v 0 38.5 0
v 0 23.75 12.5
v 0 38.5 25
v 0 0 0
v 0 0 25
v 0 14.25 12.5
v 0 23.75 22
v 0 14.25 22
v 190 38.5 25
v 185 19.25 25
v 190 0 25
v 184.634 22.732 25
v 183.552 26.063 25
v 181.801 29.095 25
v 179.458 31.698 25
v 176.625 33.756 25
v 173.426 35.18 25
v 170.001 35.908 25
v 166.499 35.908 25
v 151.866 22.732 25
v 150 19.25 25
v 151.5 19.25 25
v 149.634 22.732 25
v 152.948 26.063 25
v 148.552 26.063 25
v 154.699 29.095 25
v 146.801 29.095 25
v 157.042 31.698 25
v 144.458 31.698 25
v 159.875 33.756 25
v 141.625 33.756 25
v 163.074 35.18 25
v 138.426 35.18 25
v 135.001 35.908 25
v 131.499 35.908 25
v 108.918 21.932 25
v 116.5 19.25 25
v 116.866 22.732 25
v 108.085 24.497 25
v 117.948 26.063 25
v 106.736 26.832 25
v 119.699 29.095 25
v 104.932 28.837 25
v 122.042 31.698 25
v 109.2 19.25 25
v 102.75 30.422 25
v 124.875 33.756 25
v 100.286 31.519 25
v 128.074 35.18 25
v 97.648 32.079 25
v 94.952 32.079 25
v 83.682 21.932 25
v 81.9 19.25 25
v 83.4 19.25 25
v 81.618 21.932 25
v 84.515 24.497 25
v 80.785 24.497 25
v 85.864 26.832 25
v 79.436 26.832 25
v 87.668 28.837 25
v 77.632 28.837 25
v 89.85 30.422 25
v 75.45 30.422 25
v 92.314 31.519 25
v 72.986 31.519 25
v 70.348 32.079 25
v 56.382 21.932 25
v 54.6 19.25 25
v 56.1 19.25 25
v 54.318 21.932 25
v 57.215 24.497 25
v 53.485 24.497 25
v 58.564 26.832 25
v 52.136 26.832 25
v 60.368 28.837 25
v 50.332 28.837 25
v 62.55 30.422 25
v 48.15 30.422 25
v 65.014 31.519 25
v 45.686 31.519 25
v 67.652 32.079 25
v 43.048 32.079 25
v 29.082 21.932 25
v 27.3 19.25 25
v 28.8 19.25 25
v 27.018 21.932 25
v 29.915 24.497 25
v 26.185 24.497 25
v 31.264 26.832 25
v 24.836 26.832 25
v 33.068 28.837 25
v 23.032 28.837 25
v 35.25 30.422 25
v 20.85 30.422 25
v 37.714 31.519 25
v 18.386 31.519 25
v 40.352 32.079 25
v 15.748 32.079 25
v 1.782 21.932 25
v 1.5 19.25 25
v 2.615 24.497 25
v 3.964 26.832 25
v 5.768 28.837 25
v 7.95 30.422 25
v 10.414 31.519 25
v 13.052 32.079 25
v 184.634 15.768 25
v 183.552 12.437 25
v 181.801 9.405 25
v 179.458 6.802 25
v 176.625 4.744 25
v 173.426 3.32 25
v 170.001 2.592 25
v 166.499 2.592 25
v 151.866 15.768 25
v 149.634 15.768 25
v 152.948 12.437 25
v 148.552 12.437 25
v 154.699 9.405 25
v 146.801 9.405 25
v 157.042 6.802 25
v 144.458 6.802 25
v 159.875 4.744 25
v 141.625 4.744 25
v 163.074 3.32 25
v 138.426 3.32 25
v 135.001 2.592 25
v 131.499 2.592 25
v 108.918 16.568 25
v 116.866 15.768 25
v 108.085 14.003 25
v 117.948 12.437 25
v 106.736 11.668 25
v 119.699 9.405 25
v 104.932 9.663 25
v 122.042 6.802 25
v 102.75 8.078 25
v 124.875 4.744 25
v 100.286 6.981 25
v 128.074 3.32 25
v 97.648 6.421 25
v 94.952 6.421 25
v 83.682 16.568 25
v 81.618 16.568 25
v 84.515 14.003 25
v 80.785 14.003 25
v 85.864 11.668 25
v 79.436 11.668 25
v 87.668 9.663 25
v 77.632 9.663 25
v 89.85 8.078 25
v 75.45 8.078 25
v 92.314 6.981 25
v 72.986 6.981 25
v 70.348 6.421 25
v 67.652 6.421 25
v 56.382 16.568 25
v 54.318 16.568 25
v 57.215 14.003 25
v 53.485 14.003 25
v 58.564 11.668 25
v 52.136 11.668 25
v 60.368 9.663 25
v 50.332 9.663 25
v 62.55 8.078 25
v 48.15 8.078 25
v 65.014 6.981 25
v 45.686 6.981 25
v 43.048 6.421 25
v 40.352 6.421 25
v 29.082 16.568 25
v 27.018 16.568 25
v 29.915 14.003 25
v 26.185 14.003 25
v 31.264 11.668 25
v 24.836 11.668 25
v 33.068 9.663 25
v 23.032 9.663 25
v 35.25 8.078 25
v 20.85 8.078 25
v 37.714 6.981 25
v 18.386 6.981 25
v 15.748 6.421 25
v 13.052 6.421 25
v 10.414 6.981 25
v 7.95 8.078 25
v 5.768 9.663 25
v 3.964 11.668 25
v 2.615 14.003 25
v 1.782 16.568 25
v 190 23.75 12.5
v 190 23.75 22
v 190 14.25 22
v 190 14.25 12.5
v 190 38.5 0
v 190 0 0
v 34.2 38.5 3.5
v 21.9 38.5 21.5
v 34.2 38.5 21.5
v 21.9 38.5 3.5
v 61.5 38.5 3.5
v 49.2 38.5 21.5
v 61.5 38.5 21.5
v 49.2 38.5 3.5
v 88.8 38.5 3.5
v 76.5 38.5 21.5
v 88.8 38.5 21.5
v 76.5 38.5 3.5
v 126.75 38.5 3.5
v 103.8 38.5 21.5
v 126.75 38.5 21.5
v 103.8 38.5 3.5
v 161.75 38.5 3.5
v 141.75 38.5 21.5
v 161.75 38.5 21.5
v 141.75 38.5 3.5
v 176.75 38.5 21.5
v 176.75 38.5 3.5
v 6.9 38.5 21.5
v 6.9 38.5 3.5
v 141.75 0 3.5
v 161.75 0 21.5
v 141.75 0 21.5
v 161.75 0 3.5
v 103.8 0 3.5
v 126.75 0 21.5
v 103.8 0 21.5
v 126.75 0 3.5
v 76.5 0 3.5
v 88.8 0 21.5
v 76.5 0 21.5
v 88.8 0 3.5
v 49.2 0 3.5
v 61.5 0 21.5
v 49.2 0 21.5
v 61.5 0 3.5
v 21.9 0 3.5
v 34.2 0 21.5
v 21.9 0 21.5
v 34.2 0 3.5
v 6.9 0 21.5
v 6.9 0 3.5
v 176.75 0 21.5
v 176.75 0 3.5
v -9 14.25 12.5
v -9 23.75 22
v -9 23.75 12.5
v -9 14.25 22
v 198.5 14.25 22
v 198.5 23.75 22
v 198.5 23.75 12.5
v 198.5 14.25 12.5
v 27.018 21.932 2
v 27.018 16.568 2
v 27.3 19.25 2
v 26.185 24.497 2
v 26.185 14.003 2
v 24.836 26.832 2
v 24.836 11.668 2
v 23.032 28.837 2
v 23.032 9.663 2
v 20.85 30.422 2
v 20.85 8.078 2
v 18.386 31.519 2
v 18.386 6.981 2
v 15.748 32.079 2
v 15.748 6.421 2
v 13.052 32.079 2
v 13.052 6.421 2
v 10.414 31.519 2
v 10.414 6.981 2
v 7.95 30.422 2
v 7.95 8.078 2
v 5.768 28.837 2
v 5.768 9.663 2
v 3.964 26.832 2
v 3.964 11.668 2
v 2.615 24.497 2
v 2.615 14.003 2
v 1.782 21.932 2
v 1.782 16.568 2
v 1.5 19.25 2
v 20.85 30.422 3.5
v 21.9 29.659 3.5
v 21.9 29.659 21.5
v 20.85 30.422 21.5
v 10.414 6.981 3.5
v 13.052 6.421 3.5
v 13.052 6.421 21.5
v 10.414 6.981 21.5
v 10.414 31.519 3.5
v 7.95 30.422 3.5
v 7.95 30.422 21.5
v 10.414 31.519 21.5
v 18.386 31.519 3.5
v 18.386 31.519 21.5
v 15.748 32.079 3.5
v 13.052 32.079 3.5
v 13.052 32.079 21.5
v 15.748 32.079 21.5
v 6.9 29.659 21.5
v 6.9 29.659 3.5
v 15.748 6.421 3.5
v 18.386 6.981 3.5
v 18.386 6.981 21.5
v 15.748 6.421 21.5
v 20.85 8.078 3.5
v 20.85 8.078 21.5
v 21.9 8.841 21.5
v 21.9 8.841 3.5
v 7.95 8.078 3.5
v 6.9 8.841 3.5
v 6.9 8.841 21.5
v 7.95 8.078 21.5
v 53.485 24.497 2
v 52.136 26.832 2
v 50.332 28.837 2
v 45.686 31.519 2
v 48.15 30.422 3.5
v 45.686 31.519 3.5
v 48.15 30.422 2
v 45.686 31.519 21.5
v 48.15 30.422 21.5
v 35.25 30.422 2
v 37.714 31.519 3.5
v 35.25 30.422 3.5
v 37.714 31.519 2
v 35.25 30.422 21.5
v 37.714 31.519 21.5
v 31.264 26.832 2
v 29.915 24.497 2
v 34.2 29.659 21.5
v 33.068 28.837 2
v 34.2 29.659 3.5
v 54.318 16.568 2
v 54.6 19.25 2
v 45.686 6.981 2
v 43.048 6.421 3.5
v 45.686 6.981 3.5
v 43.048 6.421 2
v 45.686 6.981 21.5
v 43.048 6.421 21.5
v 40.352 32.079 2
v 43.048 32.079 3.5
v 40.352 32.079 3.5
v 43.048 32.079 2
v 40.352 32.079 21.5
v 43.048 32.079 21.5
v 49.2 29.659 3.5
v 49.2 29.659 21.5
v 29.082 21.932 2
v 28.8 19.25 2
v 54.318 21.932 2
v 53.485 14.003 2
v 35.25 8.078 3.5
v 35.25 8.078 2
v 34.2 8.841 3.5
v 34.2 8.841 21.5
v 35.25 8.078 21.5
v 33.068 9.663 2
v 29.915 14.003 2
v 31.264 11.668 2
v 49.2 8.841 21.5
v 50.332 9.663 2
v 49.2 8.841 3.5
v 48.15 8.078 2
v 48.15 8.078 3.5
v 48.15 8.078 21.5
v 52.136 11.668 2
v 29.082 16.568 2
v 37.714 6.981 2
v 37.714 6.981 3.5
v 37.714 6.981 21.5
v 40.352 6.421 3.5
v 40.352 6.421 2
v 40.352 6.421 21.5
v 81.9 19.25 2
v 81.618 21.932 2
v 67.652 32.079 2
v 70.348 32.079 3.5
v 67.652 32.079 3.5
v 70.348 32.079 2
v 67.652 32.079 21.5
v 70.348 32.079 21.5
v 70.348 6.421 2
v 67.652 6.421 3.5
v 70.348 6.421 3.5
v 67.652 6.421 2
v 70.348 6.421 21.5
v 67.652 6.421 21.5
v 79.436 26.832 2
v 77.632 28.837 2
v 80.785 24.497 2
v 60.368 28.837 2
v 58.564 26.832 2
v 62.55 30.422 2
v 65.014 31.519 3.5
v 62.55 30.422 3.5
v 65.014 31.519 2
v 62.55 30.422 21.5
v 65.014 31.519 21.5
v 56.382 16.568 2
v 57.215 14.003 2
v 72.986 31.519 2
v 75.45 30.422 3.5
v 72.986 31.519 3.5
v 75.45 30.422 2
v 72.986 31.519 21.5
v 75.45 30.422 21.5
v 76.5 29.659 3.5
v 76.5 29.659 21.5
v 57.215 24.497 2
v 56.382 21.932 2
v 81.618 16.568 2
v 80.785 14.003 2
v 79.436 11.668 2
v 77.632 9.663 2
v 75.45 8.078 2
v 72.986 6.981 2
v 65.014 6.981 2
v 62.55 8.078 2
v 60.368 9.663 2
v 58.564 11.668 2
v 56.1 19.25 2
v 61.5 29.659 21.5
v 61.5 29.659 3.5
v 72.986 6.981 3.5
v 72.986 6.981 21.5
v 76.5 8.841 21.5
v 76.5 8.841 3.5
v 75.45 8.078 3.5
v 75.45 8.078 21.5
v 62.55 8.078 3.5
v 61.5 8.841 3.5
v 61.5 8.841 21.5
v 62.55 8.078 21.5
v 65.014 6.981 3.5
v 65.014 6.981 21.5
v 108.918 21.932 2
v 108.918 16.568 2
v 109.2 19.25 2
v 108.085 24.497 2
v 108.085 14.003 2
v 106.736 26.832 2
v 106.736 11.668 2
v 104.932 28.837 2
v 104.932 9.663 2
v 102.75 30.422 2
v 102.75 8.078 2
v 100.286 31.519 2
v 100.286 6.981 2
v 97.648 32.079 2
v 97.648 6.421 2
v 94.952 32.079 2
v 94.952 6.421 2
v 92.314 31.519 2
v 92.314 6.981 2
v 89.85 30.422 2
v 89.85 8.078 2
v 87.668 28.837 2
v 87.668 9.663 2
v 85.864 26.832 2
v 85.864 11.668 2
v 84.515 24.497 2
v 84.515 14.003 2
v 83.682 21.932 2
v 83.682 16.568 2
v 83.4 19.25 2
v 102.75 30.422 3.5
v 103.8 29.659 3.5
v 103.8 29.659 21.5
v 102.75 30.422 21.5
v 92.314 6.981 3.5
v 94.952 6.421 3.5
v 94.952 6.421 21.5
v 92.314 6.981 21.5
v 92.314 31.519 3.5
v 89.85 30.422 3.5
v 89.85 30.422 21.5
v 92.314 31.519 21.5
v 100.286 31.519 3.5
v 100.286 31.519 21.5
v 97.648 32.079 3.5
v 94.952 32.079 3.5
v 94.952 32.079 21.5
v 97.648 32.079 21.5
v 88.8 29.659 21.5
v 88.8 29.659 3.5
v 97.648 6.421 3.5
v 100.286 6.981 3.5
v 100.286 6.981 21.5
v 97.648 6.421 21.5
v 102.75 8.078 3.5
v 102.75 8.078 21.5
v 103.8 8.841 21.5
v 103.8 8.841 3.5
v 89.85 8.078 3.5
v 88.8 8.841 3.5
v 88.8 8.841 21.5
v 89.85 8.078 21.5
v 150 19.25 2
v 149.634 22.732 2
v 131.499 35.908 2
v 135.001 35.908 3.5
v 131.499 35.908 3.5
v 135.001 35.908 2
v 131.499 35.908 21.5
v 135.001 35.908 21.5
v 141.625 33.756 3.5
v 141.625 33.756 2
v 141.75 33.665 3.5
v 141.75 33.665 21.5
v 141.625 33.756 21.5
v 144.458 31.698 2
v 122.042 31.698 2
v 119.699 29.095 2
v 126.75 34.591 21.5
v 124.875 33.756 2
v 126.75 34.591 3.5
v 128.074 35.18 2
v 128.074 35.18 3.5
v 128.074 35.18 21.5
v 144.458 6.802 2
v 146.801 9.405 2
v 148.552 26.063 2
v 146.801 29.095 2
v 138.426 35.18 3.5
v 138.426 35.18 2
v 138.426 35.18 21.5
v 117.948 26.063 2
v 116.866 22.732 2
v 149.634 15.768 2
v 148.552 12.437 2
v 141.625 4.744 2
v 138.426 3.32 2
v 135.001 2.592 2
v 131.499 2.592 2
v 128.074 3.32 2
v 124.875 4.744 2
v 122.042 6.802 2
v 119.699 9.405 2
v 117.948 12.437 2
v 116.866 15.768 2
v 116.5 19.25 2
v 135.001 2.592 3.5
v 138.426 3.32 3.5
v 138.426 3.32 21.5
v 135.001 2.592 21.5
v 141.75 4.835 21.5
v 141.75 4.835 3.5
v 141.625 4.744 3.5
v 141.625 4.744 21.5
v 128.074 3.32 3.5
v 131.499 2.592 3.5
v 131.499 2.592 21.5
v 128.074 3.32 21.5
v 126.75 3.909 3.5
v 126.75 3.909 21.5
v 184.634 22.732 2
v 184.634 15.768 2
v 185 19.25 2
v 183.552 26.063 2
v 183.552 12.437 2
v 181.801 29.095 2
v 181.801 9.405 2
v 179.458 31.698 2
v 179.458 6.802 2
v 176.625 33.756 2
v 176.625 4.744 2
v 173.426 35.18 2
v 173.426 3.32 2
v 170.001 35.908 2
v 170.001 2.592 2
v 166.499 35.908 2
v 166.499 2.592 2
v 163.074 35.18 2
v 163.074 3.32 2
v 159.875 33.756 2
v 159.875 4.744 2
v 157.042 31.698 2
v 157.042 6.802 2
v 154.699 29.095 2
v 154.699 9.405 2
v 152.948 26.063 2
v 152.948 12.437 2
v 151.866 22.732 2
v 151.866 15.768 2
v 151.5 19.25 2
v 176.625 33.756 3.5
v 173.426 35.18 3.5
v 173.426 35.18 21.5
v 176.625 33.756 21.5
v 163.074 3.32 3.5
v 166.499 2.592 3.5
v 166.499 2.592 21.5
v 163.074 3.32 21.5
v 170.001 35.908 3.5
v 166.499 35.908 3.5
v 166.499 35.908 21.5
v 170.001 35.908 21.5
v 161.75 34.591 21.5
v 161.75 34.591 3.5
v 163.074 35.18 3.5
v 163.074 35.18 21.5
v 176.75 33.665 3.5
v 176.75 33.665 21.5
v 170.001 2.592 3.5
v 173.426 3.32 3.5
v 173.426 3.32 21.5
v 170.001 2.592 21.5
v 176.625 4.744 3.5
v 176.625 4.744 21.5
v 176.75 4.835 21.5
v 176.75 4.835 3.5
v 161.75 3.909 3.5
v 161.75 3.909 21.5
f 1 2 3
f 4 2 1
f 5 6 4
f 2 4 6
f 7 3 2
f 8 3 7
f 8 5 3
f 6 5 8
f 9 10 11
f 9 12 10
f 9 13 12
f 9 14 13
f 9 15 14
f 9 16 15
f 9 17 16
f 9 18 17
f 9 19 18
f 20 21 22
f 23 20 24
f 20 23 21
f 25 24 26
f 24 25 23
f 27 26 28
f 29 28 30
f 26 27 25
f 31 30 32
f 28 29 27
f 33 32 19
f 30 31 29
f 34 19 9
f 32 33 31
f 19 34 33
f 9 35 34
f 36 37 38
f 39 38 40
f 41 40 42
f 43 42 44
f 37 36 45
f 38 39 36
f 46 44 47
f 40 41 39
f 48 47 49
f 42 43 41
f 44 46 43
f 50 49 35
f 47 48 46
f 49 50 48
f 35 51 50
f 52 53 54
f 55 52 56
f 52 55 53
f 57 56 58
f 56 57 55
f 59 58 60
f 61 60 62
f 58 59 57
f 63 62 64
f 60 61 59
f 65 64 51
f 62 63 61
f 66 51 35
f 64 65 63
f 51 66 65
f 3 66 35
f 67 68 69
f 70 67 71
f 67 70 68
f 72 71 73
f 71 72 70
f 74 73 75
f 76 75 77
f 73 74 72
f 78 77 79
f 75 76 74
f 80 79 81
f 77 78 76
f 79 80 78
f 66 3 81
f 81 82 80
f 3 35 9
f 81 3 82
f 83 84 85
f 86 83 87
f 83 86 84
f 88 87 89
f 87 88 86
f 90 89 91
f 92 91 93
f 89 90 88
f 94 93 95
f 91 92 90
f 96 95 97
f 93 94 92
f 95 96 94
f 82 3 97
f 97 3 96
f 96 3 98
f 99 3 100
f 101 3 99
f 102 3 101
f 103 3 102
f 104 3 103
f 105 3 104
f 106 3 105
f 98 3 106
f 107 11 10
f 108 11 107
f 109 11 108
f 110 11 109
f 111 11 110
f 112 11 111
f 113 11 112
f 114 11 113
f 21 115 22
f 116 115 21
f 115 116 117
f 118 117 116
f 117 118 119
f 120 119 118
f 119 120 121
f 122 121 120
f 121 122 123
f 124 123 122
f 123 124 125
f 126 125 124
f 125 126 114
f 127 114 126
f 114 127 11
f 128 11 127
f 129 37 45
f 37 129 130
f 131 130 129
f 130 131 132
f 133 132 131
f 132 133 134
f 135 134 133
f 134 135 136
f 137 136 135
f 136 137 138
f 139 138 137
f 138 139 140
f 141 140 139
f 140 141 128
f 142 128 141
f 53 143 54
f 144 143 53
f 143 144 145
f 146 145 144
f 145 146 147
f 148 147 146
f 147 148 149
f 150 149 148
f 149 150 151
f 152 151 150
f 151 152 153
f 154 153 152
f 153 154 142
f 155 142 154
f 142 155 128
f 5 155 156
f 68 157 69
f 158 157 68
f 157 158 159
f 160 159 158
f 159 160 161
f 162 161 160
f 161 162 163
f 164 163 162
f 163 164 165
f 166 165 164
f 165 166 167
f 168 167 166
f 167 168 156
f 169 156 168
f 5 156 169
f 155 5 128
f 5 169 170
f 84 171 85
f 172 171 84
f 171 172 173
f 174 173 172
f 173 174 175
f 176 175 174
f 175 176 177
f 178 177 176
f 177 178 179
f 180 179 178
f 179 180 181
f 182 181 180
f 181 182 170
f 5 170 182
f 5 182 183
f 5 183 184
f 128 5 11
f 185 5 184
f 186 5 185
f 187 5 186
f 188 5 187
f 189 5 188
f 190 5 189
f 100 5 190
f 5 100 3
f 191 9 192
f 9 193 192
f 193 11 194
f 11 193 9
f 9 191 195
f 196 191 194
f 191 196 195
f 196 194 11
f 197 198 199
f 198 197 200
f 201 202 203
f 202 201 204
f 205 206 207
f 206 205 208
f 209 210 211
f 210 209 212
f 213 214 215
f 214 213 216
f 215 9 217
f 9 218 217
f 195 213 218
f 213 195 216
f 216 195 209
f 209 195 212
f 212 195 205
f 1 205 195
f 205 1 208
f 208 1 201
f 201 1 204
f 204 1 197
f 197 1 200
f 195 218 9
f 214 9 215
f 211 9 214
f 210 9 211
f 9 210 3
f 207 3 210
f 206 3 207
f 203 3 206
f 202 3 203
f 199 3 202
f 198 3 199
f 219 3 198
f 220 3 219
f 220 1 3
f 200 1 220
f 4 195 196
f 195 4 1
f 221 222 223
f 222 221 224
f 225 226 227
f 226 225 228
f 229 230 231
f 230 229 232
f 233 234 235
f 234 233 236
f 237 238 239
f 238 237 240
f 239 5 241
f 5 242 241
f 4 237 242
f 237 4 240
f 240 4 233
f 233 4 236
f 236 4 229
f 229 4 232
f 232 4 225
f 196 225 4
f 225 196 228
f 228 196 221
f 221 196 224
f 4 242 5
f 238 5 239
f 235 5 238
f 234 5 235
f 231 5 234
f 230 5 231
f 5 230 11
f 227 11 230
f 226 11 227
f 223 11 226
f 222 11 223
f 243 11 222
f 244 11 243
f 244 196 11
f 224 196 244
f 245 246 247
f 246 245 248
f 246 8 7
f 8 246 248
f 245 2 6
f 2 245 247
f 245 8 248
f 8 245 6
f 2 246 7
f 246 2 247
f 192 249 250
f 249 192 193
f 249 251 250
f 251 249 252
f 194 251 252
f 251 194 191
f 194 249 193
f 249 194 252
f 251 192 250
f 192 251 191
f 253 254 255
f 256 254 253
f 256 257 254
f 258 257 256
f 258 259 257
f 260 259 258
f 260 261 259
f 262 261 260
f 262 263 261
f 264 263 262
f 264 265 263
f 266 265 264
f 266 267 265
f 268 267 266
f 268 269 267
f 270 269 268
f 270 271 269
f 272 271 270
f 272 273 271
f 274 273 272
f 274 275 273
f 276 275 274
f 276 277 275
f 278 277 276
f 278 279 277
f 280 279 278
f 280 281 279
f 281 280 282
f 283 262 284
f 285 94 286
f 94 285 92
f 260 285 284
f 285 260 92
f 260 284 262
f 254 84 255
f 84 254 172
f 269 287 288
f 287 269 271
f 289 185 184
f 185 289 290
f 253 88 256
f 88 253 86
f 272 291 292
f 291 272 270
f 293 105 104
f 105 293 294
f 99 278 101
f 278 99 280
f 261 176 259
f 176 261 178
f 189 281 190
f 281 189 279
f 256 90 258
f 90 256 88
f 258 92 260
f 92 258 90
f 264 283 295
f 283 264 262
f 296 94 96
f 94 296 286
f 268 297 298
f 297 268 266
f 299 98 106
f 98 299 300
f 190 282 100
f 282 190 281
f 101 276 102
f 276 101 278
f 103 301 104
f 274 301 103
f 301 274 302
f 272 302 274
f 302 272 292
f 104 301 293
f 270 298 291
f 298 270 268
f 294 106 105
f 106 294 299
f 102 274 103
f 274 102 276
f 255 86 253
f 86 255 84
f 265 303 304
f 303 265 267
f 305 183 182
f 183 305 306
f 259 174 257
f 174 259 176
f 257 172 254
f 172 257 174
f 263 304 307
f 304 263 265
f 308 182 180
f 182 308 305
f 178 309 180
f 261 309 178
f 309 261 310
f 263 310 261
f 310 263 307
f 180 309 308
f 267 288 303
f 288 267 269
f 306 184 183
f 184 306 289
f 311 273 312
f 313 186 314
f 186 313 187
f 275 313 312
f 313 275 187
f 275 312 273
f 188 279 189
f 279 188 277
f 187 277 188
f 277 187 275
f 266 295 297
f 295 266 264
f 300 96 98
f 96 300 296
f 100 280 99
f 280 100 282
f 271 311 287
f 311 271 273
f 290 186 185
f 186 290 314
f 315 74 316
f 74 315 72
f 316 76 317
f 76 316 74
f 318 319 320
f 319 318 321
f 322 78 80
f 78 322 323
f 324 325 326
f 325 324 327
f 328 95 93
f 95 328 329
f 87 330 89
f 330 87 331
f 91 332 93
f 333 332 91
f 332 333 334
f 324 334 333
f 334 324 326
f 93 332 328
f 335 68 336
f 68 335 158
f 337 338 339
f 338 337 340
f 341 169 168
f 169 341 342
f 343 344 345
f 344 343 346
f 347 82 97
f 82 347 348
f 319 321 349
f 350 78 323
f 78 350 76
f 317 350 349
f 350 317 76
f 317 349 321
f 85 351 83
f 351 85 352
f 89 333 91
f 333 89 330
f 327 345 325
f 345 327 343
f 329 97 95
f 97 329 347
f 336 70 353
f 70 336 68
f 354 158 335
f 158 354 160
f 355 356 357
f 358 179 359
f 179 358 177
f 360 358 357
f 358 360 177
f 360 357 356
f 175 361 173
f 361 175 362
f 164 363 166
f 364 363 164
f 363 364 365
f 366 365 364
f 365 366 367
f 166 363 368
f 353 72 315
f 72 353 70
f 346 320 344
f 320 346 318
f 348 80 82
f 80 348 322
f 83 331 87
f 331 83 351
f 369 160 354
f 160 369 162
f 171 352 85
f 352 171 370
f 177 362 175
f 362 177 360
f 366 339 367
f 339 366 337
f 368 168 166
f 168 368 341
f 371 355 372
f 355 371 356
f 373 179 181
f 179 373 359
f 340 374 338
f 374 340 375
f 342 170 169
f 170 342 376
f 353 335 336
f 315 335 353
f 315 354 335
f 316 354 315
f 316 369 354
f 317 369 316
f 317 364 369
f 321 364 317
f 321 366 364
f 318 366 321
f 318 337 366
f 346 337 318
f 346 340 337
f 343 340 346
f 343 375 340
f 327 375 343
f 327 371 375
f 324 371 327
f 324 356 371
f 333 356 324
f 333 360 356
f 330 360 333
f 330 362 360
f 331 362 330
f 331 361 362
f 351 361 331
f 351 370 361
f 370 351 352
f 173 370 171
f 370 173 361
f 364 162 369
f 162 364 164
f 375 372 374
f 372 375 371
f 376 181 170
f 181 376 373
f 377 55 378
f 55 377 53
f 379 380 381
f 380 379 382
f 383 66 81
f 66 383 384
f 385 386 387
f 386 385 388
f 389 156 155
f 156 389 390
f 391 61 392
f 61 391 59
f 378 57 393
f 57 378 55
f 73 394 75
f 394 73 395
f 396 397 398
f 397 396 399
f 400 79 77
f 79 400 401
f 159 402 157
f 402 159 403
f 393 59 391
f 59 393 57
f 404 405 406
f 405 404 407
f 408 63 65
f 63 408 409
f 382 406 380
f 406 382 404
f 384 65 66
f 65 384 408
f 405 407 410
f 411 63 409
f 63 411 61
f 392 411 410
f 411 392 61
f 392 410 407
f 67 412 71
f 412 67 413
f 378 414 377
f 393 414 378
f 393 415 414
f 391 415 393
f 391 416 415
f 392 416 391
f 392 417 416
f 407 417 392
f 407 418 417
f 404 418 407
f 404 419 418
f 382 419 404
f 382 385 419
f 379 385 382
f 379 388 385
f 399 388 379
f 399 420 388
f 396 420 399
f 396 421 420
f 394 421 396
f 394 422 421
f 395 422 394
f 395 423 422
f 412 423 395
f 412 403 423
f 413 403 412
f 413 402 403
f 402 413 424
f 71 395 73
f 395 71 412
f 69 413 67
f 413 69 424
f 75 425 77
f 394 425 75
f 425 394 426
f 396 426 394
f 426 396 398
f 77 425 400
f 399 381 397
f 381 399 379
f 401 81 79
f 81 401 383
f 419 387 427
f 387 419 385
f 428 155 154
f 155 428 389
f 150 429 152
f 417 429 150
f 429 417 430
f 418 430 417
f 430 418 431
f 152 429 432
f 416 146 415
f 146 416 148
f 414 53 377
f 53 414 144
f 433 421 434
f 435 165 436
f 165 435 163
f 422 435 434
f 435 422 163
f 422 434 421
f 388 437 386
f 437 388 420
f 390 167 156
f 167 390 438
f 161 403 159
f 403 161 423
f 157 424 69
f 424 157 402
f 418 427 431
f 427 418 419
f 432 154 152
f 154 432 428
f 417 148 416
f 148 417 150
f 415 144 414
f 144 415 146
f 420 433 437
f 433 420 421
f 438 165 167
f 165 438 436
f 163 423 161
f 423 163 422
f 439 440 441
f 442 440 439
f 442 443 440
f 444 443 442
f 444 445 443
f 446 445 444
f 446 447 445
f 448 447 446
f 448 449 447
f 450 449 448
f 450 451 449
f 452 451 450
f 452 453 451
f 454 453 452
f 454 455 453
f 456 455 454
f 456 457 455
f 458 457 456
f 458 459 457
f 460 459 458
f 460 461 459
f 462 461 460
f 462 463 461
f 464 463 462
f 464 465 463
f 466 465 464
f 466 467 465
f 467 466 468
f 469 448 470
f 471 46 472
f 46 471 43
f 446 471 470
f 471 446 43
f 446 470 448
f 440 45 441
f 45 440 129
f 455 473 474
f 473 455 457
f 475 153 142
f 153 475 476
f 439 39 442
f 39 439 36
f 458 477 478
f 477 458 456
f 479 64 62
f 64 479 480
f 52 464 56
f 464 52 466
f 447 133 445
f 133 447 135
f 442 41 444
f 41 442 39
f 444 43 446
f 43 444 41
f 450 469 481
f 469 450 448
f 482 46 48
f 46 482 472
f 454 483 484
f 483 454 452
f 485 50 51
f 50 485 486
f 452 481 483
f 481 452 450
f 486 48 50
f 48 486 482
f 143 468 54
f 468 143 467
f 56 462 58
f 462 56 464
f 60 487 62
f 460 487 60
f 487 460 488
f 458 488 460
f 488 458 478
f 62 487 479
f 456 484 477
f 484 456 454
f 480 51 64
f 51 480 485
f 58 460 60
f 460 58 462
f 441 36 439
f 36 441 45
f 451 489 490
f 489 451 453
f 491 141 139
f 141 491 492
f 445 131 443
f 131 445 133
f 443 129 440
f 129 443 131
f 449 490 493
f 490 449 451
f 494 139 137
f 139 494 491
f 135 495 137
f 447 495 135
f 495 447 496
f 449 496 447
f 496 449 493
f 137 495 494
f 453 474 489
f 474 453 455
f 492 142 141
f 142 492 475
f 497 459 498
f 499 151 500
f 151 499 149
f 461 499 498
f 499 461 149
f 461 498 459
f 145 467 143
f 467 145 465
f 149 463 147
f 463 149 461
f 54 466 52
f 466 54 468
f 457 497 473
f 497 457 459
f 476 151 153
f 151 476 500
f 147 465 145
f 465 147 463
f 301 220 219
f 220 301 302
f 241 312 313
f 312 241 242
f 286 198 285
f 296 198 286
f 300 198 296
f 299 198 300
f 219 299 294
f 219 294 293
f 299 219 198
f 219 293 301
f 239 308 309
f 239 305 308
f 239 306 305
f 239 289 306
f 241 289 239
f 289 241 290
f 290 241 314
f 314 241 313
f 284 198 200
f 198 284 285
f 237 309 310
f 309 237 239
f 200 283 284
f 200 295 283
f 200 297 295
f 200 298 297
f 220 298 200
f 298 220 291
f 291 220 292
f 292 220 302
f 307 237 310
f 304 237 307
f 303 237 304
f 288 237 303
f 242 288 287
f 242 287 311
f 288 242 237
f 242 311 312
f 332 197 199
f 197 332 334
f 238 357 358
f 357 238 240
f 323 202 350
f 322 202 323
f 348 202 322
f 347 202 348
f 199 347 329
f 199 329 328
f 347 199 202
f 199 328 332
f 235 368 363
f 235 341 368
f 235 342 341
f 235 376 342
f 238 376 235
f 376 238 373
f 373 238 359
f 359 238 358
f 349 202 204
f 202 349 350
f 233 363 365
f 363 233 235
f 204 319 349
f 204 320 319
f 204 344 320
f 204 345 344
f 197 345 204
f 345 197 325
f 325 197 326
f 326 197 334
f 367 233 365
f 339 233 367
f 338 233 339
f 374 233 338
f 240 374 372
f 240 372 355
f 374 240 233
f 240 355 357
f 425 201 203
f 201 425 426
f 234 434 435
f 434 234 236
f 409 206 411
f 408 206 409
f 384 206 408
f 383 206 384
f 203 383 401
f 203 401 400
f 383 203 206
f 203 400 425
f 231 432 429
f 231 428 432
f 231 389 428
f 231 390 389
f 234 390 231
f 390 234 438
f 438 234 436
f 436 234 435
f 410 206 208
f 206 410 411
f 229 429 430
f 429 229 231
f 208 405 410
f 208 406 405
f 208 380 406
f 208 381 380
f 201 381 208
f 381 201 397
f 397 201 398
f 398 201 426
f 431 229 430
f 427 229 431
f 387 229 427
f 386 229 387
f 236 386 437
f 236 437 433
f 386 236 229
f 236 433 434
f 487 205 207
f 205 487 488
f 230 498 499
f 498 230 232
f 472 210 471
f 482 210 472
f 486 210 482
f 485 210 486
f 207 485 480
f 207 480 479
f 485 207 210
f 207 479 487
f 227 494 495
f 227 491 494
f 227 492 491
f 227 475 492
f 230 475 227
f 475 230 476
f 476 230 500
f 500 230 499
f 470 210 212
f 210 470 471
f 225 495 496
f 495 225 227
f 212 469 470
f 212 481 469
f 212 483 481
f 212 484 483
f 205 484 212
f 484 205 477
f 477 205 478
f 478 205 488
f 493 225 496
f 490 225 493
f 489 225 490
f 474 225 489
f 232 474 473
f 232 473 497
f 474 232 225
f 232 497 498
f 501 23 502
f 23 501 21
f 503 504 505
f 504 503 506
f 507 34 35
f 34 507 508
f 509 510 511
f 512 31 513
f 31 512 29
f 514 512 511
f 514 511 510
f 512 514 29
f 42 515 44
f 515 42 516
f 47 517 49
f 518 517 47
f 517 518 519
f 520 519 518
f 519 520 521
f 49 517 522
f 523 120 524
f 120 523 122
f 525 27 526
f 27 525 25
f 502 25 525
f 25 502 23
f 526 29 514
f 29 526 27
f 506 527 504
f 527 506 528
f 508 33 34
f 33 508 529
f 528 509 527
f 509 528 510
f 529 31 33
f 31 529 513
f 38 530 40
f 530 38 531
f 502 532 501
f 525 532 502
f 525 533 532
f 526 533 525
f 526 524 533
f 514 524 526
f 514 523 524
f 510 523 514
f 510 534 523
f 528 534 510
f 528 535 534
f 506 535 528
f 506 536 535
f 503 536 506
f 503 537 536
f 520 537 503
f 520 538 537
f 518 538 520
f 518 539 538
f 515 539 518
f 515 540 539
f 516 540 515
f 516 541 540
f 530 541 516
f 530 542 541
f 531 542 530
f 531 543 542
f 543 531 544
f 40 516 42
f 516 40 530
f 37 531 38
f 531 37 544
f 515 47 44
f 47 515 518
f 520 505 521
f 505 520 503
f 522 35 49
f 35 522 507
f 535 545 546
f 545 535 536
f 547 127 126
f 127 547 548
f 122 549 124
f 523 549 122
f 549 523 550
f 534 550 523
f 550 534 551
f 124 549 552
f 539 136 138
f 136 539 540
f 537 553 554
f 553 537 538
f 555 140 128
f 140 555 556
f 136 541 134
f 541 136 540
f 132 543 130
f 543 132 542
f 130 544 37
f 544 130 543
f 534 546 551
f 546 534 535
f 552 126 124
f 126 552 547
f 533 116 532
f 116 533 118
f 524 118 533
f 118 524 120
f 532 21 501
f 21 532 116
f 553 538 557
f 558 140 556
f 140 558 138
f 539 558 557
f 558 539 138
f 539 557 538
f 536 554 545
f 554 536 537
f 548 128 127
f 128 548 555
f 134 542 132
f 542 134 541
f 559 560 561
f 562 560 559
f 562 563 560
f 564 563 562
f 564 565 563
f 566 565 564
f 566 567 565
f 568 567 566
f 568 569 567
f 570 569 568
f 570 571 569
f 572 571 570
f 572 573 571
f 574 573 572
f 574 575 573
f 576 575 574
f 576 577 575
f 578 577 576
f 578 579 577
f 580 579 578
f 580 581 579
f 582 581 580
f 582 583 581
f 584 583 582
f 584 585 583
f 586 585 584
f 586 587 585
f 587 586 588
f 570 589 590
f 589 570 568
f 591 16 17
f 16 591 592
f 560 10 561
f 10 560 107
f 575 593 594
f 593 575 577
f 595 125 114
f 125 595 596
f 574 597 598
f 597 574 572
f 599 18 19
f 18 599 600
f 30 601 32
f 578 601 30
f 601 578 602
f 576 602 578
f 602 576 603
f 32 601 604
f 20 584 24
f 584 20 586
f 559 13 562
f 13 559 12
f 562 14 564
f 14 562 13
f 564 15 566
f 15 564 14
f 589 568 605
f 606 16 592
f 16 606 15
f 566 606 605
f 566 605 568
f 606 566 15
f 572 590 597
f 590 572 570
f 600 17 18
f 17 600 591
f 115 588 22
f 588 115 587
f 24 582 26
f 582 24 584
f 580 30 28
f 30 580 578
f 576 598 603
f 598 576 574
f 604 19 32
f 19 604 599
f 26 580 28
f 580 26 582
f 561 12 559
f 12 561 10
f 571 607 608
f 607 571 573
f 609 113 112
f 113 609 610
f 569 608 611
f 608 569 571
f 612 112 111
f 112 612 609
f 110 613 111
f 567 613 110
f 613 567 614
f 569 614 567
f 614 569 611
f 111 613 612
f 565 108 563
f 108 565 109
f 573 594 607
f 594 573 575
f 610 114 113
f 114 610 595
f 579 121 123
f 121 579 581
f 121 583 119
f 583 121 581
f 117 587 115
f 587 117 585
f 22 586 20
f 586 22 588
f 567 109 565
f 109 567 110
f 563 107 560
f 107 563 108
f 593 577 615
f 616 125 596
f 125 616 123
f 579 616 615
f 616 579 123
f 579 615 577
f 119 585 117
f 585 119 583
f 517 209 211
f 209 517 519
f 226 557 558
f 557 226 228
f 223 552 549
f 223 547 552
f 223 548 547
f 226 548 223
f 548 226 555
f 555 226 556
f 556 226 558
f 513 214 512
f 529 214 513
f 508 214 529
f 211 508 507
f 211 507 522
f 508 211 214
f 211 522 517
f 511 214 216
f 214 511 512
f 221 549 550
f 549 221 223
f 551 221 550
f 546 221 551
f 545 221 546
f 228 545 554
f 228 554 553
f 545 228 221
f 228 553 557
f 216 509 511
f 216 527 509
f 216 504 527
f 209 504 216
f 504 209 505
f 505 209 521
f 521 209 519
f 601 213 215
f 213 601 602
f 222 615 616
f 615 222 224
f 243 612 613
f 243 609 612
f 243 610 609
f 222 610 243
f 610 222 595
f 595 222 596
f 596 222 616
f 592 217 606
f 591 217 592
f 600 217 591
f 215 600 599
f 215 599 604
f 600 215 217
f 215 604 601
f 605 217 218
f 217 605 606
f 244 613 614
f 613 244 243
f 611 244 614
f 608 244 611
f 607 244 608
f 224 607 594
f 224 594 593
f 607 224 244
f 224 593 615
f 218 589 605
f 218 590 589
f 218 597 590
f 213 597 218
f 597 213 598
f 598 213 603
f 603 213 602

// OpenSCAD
// file: sizes.scad
citadel_pot=33.5;
citadel_radius=citadel_pot/2;
citadel_height=44;

vallejo_pot=25.8;
vallejo_radius=vallejo_pot/2;
vallejo_height=77.5;

tray_length=190;
tray_depth=citadel_pot+5;
tray_height=25;

hole_size=10;
// main file
include <sizes.scad>;
margin_y=(tray_depth - citadel_pot) /2;
margin_x=(tray_length - 5*citadel_pot)/15;

difference() {
    union() {
        // base 
        cube([tray_length, tray_depth, tray_height]);
        // connectors
        translate([-9, tray_depth/2-5, tray_height/2])cube([hole_size-0.5,hole_size-0.5,hole_size-0.5]);
        translate([tray_length-1, tray_depth/2-5, tray_height/2])cube([hole_size-0.5,hole_size-0.5,hole_size-0.5]);
    };
    
    // bottle holes
    for(x=[0:3])
        translate([margin_x + vallejo_radius + x*margin_x + x*vallejo_pot, citadel_radius + margin_y, 2])
            cylinder(r=vallejo_radius, h=vallejo_height);
    
    // holes to reduce material consumption
    for(x=[0:3])
        // @TODO remove magic numbers
        translate([-6+vallejo_radius + x*margin_x + x*vallejo_pot, citadel_radius + margin_y-50, 3.5])
            cube([15,100,18]);
    
        // bottle holes
    for(x=[3:4])
        translate([10 + margin_x + citadel_radius + x*margin_x + x*citadel_pot, citadel_radius + margin_y, 2])
            cylinder(r=citadel_radius, h=citadel_height);
    
    // holes to reduce material consumption
    for(x=[3:4])
        // @TODO remove magic numbers
        translate([5 +citadel_radius + x*margin_x + x*citadel_pot, citadel_radius + margin_y-50, 3.5])
            cube([15,100,18]);
};
